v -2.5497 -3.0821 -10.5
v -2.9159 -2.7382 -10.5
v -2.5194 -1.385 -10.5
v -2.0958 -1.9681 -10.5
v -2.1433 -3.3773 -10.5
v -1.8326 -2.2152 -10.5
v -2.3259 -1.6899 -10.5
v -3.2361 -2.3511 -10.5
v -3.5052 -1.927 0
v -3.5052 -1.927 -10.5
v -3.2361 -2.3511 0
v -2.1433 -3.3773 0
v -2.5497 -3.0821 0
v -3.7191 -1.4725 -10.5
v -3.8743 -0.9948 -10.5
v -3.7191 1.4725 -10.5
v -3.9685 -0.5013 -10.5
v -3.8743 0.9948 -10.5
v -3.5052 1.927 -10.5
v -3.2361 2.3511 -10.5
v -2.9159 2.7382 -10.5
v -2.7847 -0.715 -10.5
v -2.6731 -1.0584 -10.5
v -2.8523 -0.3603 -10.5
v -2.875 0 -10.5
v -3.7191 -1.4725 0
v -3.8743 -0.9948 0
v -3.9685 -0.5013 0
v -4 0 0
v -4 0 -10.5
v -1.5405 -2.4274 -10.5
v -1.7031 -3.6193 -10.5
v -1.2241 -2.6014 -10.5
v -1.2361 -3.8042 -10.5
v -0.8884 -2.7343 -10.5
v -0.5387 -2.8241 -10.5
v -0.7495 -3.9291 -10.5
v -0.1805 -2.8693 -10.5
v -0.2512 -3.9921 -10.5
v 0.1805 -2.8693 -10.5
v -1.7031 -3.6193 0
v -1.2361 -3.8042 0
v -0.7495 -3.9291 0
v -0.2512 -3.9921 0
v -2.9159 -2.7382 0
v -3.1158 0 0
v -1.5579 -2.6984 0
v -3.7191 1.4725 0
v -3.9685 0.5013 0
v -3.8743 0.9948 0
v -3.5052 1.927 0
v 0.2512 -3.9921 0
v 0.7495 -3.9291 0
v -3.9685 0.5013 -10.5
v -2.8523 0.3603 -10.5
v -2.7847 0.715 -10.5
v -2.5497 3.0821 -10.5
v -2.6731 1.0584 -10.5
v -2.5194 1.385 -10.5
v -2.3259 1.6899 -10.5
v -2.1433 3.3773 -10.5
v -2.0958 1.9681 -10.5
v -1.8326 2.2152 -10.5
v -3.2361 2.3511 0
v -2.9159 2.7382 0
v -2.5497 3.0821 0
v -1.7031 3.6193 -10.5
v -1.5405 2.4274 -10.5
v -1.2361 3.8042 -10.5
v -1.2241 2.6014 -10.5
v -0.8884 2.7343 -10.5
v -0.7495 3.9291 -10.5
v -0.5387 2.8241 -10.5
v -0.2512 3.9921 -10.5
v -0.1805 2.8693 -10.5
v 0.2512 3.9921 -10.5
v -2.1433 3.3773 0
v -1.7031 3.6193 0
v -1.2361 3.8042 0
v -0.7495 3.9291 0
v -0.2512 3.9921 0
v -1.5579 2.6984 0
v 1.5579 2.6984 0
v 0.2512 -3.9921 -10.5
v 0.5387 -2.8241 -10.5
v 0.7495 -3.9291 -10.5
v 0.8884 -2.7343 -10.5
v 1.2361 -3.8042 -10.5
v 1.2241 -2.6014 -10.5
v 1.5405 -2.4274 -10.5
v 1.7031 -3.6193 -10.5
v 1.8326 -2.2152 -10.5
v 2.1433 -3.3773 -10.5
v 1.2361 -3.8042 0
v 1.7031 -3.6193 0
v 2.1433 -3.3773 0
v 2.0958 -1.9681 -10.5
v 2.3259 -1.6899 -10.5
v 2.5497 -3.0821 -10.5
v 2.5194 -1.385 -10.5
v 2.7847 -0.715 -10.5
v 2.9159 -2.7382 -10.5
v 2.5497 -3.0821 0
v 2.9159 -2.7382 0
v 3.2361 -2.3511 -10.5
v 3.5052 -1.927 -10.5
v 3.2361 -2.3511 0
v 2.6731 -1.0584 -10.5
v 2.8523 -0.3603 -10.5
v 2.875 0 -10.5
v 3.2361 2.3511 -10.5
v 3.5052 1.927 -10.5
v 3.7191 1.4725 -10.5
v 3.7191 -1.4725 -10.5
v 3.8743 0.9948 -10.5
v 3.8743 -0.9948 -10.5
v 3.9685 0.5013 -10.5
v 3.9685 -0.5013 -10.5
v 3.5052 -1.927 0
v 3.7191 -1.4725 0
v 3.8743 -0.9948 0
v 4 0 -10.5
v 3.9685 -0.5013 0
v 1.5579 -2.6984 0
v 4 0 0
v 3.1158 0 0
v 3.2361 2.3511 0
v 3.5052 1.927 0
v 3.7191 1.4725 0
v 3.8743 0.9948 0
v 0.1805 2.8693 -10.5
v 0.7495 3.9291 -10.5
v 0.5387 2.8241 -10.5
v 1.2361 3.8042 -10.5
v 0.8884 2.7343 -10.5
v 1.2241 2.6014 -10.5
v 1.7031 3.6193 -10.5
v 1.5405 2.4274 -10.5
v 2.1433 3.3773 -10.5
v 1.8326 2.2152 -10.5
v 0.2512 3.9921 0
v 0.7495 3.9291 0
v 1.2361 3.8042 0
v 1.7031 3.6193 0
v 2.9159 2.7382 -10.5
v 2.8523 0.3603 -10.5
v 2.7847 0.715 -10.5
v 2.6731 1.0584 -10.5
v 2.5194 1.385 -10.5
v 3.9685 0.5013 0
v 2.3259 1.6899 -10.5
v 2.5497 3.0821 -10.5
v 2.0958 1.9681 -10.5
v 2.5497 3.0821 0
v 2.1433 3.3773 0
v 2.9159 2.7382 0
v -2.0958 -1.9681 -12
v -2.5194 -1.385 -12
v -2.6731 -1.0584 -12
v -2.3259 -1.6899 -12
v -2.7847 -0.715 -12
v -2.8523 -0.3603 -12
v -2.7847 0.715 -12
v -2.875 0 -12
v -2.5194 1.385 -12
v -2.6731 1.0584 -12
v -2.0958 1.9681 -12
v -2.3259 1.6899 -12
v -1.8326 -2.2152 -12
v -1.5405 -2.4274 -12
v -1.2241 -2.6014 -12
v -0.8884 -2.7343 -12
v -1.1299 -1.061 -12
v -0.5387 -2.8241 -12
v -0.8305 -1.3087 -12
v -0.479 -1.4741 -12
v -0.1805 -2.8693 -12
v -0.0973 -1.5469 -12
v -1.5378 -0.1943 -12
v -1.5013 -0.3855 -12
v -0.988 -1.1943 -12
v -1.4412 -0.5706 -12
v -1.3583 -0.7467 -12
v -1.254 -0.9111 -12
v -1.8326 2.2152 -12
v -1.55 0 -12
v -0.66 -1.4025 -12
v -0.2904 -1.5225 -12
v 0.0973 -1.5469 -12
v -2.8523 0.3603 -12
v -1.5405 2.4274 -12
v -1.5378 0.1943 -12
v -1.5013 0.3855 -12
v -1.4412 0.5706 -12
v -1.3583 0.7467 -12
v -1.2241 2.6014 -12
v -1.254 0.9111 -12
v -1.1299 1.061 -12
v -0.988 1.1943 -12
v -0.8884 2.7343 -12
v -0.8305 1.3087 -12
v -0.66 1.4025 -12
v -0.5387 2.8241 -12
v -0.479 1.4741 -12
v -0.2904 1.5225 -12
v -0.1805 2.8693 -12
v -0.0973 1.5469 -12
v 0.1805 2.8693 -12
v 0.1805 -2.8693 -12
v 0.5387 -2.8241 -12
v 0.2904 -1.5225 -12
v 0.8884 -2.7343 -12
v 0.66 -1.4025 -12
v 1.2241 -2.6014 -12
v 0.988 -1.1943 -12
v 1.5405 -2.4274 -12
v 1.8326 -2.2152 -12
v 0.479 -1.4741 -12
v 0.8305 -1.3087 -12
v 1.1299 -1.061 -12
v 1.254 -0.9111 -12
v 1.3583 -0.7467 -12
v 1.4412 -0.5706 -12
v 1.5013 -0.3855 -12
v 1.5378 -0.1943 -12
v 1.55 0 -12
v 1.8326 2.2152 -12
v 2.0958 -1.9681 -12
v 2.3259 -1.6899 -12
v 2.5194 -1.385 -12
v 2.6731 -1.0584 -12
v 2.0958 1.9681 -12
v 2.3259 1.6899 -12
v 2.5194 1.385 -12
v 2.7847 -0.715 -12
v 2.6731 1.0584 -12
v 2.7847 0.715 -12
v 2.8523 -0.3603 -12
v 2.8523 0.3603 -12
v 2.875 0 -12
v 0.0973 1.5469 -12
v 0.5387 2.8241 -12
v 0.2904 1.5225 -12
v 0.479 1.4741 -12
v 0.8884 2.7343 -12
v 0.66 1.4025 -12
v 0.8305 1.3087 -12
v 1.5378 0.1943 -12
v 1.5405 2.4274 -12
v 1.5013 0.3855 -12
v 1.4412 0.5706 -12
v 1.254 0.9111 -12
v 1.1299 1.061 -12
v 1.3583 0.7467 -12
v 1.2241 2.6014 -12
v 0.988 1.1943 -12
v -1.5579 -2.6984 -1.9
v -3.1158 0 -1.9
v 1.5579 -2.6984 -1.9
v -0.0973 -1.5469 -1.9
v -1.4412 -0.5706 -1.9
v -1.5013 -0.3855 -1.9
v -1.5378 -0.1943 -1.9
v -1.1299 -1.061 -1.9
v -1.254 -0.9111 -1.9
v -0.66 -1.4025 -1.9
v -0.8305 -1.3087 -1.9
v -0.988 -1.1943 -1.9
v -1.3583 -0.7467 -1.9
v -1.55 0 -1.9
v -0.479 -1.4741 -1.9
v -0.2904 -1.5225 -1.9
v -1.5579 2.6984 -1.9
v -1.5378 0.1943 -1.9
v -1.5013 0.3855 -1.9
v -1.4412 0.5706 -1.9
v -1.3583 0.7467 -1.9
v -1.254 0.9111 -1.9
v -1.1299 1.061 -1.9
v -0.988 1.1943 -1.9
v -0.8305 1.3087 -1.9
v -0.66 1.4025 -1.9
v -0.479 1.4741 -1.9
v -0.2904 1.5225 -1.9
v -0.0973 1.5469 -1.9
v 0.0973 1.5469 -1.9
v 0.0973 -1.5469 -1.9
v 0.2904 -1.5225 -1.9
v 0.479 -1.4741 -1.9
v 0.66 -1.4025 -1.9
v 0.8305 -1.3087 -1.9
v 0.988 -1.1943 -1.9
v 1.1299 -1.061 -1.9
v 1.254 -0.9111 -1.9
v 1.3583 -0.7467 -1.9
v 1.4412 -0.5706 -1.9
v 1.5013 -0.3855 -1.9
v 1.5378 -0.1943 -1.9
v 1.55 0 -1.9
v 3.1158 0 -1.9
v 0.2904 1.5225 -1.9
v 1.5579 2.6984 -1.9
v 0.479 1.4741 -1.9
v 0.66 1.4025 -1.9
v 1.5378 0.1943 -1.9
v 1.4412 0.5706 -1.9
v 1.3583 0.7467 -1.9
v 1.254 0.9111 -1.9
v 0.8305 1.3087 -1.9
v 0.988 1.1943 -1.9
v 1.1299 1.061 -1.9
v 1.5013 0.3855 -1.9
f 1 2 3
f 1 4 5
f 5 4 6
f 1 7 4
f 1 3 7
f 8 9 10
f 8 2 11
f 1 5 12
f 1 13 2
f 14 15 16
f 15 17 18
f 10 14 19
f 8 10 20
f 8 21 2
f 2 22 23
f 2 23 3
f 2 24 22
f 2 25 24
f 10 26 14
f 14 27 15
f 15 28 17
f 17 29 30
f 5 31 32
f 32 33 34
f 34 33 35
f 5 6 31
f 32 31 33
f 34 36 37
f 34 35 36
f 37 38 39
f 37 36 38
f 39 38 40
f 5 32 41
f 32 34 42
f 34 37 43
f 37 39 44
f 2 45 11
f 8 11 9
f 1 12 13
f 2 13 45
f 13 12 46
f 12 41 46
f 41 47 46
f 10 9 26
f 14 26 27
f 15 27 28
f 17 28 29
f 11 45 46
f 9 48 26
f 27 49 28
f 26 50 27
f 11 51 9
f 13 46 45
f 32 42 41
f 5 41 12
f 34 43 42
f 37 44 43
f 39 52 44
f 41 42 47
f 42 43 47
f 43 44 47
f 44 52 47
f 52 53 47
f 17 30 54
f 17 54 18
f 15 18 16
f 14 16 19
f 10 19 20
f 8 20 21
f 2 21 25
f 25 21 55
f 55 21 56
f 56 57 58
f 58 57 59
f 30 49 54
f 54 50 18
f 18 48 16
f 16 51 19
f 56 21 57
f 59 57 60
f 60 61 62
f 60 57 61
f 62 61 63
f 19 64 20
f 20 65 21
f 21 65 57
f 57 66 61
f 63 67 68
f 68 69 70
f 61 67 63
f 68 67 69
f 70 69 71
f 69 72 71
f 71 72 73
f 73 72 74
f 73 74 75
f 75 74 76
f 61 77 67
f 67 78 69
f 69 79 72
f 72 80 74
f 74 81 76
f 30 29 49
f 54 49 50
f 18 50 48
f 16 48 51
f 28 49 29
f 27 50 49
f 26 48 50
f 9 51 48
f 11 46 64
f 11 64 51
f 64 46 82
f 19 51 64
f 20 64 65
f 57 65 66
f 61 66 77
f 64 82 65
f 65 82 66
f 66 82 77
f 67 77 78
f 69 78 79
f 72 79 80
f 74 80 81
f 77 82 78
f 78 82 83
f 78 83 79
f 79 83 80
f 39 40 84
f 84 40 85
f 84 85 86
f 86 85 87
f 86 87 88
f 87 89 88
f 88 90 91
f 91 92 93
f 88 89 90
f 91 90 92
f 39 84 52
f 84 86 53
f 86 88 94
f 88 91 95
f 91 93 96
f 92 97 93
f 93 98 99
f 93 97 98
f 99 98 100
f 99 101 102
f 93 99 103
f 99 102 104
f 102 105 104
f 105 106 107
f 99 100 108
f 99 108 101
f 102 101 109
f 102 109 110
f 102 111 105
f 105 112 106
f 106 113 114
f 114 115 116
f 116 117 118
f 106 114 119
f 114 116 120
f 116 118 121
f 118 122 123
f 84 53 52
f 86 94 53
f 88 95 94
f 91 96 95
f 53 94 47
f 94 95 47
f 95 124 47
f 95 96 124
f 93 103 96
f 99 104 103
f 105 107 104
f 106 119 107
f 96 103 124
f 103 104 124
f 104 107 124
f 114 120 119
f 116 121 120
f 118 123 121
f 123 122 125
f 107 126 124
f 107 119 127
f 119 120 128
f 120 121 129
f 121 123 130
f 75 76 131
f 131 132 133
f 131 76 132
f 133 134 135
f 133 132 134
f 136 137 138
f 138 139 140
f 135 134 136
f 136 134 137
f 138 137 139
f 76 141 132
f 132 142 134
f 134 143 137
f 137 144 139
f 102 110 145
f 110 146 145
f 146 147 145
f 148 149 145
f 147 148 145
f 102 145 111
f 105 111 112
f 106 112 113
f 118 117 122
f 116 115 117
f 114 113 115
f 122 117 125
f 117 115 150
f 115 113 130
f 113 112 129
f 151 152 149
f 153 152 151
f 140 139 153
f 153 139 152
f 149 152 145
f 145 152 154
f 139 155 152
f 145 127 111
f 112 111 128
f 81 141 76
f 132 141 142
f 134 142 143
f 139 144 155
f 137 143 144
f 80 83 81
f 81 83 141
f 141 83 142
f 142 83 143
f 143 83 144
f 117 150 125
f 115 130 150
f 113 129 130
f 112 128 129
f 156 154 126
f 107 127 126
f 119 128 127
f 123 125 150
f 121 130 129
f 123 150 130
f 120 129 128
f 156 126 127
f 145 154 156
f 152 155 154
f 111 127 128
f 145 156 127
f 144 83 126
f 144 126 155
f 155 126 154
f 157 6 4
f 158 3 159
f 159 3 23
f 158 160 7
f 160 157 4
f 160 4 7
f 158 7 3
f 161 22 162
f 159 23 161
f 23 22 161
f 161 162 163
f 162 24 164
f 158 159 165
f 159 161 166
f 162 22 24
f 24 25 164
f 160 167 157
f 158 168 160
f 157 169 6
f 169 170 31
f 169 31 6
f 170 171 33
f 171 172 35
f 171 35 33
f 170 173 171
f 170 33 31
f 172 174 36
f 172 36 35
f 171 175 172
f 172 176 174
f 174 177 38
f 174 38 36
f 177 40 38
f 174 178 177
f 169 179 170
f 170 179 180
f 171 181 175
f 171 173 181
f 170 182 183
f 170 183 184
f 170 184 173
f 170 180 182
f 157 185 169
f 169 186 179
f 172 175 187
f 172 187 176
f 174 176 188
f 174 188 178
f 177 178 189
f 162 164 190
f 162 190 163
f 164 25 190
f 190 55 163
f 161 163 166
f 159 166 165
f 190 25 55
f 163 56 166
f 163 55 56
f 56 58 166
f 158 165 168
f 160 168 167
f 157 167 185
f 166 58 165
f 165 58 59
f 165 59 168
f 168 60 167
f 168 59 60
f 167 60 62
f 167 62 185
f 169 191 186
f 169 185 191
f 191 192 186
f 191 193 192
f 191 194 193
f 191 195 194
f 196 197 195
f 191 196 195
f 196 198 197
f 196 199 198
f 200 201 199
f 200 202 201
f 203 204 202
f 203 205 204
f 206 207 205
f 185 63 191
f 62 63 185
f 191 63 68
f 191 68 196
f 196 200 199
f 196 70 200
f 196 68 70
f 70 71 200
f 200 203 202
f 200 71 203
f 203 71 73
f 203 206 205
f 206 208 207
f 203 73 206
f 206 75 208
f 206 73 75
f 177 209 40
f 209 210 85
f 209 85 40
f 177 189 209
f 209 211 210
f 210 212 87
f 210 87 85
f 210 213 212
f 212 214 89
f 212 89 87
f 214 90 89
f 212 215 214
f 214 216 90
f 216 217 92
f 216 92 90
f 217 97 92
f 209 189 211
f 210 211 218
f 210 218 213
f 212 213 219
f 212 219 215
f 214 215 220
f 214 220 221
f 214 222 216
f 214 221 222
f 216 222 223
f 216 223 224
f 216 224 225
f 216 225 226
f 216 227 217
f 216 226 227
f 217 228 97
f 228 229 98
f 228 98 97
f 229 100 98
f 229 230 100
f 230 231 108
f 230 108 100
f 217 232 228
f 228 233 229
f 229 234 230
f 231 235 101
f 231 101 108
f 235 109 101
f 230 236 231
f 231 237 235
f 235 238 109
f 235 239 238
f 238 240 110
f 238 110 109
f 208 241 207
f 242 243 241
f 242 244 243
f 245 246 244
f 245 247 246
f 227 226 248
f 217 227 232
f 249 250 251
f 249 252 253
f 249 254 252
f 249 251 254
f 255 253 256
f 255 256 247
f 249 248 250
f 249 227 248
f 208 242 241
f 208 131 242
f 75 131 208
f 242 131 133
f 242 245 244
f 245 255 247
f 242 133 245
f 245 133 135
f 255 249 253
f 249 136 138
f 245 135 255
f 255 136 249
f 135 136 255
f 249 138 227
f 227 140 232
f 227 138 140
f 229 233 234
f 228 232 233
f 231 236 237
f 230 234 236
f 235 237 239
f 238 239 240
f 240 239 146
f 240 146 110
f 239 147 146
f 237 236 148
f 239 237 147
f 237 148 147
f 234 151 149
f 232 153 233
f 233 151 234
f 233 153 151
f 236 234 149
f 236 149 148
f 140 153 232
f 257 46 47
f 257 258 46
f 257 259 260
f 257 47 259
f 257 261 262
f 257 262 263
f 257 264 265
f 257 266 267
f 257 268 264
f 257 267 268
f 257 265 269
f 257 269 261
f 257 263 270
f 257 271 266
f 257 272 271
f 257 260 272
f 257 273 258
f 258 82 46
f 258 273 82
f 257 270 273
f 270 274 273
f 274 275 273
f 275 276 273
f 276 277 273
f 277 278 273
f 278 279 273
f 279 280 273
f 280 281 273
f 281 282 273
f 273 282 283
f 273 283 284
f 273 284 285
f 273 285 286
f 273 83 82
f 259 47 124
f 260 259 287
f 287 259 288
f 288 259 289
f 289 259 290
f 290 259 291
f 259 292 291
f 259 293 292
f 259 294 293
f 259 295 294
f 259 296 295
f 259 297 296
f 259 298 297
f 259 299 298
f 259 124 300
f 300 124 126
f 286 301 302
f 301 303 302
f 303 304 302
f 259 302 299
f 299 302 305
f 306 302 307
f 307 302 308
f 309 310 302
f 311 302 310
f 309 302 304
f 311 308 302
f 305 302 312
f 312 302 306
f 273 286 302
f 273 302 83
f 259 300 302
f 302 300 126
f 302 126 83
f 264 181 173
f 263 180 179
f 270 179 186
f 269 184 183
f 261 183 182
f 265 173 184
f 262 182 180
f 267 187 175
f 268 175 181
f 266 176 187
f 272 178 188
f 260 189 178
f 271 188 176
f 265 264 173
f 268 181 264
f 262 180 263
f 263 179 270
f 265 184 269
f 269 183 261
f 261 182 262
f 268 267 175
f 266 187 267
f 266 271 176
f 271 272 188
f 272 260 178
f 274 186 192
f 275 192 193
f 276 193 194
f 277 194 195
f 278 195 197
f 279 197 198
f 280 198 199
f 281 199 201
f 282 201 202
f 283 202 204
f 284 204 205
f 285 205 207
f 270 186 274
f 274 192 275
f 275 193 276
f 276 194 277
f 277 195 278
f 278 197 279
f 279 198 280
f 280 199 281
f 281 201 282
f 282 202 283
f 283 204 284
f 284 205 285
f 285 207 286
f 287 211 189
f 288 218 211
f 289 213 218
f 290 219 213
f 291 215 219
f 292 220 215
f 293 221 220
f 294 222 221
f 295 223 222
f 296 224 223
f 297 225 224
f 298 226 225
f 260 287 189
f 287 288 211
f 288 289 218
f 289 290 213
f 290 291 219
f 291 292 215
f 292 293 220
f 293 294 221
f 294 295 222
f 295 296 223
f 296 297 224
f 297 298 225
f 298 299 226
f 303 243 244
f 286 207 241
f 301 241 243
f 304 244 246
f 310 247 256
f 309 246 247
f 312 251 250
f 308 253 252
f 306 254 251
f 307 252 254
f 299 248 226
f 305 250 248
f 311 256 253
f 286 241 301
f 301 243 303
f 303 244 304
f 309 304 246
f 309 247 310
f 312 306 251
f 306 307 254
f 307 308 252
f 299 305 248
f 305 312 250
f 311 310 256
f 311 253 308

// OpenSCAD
$fn = 50;

difference() {
	union() {
		translate(v = [0, 0, -10.5]) {
			cylinder(h = 10.5, r = 4.0);
		}
		#translate(v = [0, 0, -12.0]) {
			cylinder(h = 12, r = 2.875);
		}
	}
	union() {
		translate(v = [0, 0, 0]) {
			rotate(a = [0, 0, 0]) {
				difference() {
					union() {
						translate(v = [0, 0, -1.9]) {
							linear_extrude(height = 1.9) {
								polygon(points = [[3.1158, 0.0], [1.5579000000000005, 2.698361953111554], [-1.5578999999999994, 2.6983619531115544], [-3.1158, 3.815754496783323e-16], [-1.5579000000000014, -2.6983619531115535], [1.557899999999998, -2.6983619531115552]]);
							}
						}
					}
					union();
				}
			}
		}
		#translate(v = [0, 0, -100.0]) {
			cylinder(h = 200, r = 1.55);
		}
	}
}
